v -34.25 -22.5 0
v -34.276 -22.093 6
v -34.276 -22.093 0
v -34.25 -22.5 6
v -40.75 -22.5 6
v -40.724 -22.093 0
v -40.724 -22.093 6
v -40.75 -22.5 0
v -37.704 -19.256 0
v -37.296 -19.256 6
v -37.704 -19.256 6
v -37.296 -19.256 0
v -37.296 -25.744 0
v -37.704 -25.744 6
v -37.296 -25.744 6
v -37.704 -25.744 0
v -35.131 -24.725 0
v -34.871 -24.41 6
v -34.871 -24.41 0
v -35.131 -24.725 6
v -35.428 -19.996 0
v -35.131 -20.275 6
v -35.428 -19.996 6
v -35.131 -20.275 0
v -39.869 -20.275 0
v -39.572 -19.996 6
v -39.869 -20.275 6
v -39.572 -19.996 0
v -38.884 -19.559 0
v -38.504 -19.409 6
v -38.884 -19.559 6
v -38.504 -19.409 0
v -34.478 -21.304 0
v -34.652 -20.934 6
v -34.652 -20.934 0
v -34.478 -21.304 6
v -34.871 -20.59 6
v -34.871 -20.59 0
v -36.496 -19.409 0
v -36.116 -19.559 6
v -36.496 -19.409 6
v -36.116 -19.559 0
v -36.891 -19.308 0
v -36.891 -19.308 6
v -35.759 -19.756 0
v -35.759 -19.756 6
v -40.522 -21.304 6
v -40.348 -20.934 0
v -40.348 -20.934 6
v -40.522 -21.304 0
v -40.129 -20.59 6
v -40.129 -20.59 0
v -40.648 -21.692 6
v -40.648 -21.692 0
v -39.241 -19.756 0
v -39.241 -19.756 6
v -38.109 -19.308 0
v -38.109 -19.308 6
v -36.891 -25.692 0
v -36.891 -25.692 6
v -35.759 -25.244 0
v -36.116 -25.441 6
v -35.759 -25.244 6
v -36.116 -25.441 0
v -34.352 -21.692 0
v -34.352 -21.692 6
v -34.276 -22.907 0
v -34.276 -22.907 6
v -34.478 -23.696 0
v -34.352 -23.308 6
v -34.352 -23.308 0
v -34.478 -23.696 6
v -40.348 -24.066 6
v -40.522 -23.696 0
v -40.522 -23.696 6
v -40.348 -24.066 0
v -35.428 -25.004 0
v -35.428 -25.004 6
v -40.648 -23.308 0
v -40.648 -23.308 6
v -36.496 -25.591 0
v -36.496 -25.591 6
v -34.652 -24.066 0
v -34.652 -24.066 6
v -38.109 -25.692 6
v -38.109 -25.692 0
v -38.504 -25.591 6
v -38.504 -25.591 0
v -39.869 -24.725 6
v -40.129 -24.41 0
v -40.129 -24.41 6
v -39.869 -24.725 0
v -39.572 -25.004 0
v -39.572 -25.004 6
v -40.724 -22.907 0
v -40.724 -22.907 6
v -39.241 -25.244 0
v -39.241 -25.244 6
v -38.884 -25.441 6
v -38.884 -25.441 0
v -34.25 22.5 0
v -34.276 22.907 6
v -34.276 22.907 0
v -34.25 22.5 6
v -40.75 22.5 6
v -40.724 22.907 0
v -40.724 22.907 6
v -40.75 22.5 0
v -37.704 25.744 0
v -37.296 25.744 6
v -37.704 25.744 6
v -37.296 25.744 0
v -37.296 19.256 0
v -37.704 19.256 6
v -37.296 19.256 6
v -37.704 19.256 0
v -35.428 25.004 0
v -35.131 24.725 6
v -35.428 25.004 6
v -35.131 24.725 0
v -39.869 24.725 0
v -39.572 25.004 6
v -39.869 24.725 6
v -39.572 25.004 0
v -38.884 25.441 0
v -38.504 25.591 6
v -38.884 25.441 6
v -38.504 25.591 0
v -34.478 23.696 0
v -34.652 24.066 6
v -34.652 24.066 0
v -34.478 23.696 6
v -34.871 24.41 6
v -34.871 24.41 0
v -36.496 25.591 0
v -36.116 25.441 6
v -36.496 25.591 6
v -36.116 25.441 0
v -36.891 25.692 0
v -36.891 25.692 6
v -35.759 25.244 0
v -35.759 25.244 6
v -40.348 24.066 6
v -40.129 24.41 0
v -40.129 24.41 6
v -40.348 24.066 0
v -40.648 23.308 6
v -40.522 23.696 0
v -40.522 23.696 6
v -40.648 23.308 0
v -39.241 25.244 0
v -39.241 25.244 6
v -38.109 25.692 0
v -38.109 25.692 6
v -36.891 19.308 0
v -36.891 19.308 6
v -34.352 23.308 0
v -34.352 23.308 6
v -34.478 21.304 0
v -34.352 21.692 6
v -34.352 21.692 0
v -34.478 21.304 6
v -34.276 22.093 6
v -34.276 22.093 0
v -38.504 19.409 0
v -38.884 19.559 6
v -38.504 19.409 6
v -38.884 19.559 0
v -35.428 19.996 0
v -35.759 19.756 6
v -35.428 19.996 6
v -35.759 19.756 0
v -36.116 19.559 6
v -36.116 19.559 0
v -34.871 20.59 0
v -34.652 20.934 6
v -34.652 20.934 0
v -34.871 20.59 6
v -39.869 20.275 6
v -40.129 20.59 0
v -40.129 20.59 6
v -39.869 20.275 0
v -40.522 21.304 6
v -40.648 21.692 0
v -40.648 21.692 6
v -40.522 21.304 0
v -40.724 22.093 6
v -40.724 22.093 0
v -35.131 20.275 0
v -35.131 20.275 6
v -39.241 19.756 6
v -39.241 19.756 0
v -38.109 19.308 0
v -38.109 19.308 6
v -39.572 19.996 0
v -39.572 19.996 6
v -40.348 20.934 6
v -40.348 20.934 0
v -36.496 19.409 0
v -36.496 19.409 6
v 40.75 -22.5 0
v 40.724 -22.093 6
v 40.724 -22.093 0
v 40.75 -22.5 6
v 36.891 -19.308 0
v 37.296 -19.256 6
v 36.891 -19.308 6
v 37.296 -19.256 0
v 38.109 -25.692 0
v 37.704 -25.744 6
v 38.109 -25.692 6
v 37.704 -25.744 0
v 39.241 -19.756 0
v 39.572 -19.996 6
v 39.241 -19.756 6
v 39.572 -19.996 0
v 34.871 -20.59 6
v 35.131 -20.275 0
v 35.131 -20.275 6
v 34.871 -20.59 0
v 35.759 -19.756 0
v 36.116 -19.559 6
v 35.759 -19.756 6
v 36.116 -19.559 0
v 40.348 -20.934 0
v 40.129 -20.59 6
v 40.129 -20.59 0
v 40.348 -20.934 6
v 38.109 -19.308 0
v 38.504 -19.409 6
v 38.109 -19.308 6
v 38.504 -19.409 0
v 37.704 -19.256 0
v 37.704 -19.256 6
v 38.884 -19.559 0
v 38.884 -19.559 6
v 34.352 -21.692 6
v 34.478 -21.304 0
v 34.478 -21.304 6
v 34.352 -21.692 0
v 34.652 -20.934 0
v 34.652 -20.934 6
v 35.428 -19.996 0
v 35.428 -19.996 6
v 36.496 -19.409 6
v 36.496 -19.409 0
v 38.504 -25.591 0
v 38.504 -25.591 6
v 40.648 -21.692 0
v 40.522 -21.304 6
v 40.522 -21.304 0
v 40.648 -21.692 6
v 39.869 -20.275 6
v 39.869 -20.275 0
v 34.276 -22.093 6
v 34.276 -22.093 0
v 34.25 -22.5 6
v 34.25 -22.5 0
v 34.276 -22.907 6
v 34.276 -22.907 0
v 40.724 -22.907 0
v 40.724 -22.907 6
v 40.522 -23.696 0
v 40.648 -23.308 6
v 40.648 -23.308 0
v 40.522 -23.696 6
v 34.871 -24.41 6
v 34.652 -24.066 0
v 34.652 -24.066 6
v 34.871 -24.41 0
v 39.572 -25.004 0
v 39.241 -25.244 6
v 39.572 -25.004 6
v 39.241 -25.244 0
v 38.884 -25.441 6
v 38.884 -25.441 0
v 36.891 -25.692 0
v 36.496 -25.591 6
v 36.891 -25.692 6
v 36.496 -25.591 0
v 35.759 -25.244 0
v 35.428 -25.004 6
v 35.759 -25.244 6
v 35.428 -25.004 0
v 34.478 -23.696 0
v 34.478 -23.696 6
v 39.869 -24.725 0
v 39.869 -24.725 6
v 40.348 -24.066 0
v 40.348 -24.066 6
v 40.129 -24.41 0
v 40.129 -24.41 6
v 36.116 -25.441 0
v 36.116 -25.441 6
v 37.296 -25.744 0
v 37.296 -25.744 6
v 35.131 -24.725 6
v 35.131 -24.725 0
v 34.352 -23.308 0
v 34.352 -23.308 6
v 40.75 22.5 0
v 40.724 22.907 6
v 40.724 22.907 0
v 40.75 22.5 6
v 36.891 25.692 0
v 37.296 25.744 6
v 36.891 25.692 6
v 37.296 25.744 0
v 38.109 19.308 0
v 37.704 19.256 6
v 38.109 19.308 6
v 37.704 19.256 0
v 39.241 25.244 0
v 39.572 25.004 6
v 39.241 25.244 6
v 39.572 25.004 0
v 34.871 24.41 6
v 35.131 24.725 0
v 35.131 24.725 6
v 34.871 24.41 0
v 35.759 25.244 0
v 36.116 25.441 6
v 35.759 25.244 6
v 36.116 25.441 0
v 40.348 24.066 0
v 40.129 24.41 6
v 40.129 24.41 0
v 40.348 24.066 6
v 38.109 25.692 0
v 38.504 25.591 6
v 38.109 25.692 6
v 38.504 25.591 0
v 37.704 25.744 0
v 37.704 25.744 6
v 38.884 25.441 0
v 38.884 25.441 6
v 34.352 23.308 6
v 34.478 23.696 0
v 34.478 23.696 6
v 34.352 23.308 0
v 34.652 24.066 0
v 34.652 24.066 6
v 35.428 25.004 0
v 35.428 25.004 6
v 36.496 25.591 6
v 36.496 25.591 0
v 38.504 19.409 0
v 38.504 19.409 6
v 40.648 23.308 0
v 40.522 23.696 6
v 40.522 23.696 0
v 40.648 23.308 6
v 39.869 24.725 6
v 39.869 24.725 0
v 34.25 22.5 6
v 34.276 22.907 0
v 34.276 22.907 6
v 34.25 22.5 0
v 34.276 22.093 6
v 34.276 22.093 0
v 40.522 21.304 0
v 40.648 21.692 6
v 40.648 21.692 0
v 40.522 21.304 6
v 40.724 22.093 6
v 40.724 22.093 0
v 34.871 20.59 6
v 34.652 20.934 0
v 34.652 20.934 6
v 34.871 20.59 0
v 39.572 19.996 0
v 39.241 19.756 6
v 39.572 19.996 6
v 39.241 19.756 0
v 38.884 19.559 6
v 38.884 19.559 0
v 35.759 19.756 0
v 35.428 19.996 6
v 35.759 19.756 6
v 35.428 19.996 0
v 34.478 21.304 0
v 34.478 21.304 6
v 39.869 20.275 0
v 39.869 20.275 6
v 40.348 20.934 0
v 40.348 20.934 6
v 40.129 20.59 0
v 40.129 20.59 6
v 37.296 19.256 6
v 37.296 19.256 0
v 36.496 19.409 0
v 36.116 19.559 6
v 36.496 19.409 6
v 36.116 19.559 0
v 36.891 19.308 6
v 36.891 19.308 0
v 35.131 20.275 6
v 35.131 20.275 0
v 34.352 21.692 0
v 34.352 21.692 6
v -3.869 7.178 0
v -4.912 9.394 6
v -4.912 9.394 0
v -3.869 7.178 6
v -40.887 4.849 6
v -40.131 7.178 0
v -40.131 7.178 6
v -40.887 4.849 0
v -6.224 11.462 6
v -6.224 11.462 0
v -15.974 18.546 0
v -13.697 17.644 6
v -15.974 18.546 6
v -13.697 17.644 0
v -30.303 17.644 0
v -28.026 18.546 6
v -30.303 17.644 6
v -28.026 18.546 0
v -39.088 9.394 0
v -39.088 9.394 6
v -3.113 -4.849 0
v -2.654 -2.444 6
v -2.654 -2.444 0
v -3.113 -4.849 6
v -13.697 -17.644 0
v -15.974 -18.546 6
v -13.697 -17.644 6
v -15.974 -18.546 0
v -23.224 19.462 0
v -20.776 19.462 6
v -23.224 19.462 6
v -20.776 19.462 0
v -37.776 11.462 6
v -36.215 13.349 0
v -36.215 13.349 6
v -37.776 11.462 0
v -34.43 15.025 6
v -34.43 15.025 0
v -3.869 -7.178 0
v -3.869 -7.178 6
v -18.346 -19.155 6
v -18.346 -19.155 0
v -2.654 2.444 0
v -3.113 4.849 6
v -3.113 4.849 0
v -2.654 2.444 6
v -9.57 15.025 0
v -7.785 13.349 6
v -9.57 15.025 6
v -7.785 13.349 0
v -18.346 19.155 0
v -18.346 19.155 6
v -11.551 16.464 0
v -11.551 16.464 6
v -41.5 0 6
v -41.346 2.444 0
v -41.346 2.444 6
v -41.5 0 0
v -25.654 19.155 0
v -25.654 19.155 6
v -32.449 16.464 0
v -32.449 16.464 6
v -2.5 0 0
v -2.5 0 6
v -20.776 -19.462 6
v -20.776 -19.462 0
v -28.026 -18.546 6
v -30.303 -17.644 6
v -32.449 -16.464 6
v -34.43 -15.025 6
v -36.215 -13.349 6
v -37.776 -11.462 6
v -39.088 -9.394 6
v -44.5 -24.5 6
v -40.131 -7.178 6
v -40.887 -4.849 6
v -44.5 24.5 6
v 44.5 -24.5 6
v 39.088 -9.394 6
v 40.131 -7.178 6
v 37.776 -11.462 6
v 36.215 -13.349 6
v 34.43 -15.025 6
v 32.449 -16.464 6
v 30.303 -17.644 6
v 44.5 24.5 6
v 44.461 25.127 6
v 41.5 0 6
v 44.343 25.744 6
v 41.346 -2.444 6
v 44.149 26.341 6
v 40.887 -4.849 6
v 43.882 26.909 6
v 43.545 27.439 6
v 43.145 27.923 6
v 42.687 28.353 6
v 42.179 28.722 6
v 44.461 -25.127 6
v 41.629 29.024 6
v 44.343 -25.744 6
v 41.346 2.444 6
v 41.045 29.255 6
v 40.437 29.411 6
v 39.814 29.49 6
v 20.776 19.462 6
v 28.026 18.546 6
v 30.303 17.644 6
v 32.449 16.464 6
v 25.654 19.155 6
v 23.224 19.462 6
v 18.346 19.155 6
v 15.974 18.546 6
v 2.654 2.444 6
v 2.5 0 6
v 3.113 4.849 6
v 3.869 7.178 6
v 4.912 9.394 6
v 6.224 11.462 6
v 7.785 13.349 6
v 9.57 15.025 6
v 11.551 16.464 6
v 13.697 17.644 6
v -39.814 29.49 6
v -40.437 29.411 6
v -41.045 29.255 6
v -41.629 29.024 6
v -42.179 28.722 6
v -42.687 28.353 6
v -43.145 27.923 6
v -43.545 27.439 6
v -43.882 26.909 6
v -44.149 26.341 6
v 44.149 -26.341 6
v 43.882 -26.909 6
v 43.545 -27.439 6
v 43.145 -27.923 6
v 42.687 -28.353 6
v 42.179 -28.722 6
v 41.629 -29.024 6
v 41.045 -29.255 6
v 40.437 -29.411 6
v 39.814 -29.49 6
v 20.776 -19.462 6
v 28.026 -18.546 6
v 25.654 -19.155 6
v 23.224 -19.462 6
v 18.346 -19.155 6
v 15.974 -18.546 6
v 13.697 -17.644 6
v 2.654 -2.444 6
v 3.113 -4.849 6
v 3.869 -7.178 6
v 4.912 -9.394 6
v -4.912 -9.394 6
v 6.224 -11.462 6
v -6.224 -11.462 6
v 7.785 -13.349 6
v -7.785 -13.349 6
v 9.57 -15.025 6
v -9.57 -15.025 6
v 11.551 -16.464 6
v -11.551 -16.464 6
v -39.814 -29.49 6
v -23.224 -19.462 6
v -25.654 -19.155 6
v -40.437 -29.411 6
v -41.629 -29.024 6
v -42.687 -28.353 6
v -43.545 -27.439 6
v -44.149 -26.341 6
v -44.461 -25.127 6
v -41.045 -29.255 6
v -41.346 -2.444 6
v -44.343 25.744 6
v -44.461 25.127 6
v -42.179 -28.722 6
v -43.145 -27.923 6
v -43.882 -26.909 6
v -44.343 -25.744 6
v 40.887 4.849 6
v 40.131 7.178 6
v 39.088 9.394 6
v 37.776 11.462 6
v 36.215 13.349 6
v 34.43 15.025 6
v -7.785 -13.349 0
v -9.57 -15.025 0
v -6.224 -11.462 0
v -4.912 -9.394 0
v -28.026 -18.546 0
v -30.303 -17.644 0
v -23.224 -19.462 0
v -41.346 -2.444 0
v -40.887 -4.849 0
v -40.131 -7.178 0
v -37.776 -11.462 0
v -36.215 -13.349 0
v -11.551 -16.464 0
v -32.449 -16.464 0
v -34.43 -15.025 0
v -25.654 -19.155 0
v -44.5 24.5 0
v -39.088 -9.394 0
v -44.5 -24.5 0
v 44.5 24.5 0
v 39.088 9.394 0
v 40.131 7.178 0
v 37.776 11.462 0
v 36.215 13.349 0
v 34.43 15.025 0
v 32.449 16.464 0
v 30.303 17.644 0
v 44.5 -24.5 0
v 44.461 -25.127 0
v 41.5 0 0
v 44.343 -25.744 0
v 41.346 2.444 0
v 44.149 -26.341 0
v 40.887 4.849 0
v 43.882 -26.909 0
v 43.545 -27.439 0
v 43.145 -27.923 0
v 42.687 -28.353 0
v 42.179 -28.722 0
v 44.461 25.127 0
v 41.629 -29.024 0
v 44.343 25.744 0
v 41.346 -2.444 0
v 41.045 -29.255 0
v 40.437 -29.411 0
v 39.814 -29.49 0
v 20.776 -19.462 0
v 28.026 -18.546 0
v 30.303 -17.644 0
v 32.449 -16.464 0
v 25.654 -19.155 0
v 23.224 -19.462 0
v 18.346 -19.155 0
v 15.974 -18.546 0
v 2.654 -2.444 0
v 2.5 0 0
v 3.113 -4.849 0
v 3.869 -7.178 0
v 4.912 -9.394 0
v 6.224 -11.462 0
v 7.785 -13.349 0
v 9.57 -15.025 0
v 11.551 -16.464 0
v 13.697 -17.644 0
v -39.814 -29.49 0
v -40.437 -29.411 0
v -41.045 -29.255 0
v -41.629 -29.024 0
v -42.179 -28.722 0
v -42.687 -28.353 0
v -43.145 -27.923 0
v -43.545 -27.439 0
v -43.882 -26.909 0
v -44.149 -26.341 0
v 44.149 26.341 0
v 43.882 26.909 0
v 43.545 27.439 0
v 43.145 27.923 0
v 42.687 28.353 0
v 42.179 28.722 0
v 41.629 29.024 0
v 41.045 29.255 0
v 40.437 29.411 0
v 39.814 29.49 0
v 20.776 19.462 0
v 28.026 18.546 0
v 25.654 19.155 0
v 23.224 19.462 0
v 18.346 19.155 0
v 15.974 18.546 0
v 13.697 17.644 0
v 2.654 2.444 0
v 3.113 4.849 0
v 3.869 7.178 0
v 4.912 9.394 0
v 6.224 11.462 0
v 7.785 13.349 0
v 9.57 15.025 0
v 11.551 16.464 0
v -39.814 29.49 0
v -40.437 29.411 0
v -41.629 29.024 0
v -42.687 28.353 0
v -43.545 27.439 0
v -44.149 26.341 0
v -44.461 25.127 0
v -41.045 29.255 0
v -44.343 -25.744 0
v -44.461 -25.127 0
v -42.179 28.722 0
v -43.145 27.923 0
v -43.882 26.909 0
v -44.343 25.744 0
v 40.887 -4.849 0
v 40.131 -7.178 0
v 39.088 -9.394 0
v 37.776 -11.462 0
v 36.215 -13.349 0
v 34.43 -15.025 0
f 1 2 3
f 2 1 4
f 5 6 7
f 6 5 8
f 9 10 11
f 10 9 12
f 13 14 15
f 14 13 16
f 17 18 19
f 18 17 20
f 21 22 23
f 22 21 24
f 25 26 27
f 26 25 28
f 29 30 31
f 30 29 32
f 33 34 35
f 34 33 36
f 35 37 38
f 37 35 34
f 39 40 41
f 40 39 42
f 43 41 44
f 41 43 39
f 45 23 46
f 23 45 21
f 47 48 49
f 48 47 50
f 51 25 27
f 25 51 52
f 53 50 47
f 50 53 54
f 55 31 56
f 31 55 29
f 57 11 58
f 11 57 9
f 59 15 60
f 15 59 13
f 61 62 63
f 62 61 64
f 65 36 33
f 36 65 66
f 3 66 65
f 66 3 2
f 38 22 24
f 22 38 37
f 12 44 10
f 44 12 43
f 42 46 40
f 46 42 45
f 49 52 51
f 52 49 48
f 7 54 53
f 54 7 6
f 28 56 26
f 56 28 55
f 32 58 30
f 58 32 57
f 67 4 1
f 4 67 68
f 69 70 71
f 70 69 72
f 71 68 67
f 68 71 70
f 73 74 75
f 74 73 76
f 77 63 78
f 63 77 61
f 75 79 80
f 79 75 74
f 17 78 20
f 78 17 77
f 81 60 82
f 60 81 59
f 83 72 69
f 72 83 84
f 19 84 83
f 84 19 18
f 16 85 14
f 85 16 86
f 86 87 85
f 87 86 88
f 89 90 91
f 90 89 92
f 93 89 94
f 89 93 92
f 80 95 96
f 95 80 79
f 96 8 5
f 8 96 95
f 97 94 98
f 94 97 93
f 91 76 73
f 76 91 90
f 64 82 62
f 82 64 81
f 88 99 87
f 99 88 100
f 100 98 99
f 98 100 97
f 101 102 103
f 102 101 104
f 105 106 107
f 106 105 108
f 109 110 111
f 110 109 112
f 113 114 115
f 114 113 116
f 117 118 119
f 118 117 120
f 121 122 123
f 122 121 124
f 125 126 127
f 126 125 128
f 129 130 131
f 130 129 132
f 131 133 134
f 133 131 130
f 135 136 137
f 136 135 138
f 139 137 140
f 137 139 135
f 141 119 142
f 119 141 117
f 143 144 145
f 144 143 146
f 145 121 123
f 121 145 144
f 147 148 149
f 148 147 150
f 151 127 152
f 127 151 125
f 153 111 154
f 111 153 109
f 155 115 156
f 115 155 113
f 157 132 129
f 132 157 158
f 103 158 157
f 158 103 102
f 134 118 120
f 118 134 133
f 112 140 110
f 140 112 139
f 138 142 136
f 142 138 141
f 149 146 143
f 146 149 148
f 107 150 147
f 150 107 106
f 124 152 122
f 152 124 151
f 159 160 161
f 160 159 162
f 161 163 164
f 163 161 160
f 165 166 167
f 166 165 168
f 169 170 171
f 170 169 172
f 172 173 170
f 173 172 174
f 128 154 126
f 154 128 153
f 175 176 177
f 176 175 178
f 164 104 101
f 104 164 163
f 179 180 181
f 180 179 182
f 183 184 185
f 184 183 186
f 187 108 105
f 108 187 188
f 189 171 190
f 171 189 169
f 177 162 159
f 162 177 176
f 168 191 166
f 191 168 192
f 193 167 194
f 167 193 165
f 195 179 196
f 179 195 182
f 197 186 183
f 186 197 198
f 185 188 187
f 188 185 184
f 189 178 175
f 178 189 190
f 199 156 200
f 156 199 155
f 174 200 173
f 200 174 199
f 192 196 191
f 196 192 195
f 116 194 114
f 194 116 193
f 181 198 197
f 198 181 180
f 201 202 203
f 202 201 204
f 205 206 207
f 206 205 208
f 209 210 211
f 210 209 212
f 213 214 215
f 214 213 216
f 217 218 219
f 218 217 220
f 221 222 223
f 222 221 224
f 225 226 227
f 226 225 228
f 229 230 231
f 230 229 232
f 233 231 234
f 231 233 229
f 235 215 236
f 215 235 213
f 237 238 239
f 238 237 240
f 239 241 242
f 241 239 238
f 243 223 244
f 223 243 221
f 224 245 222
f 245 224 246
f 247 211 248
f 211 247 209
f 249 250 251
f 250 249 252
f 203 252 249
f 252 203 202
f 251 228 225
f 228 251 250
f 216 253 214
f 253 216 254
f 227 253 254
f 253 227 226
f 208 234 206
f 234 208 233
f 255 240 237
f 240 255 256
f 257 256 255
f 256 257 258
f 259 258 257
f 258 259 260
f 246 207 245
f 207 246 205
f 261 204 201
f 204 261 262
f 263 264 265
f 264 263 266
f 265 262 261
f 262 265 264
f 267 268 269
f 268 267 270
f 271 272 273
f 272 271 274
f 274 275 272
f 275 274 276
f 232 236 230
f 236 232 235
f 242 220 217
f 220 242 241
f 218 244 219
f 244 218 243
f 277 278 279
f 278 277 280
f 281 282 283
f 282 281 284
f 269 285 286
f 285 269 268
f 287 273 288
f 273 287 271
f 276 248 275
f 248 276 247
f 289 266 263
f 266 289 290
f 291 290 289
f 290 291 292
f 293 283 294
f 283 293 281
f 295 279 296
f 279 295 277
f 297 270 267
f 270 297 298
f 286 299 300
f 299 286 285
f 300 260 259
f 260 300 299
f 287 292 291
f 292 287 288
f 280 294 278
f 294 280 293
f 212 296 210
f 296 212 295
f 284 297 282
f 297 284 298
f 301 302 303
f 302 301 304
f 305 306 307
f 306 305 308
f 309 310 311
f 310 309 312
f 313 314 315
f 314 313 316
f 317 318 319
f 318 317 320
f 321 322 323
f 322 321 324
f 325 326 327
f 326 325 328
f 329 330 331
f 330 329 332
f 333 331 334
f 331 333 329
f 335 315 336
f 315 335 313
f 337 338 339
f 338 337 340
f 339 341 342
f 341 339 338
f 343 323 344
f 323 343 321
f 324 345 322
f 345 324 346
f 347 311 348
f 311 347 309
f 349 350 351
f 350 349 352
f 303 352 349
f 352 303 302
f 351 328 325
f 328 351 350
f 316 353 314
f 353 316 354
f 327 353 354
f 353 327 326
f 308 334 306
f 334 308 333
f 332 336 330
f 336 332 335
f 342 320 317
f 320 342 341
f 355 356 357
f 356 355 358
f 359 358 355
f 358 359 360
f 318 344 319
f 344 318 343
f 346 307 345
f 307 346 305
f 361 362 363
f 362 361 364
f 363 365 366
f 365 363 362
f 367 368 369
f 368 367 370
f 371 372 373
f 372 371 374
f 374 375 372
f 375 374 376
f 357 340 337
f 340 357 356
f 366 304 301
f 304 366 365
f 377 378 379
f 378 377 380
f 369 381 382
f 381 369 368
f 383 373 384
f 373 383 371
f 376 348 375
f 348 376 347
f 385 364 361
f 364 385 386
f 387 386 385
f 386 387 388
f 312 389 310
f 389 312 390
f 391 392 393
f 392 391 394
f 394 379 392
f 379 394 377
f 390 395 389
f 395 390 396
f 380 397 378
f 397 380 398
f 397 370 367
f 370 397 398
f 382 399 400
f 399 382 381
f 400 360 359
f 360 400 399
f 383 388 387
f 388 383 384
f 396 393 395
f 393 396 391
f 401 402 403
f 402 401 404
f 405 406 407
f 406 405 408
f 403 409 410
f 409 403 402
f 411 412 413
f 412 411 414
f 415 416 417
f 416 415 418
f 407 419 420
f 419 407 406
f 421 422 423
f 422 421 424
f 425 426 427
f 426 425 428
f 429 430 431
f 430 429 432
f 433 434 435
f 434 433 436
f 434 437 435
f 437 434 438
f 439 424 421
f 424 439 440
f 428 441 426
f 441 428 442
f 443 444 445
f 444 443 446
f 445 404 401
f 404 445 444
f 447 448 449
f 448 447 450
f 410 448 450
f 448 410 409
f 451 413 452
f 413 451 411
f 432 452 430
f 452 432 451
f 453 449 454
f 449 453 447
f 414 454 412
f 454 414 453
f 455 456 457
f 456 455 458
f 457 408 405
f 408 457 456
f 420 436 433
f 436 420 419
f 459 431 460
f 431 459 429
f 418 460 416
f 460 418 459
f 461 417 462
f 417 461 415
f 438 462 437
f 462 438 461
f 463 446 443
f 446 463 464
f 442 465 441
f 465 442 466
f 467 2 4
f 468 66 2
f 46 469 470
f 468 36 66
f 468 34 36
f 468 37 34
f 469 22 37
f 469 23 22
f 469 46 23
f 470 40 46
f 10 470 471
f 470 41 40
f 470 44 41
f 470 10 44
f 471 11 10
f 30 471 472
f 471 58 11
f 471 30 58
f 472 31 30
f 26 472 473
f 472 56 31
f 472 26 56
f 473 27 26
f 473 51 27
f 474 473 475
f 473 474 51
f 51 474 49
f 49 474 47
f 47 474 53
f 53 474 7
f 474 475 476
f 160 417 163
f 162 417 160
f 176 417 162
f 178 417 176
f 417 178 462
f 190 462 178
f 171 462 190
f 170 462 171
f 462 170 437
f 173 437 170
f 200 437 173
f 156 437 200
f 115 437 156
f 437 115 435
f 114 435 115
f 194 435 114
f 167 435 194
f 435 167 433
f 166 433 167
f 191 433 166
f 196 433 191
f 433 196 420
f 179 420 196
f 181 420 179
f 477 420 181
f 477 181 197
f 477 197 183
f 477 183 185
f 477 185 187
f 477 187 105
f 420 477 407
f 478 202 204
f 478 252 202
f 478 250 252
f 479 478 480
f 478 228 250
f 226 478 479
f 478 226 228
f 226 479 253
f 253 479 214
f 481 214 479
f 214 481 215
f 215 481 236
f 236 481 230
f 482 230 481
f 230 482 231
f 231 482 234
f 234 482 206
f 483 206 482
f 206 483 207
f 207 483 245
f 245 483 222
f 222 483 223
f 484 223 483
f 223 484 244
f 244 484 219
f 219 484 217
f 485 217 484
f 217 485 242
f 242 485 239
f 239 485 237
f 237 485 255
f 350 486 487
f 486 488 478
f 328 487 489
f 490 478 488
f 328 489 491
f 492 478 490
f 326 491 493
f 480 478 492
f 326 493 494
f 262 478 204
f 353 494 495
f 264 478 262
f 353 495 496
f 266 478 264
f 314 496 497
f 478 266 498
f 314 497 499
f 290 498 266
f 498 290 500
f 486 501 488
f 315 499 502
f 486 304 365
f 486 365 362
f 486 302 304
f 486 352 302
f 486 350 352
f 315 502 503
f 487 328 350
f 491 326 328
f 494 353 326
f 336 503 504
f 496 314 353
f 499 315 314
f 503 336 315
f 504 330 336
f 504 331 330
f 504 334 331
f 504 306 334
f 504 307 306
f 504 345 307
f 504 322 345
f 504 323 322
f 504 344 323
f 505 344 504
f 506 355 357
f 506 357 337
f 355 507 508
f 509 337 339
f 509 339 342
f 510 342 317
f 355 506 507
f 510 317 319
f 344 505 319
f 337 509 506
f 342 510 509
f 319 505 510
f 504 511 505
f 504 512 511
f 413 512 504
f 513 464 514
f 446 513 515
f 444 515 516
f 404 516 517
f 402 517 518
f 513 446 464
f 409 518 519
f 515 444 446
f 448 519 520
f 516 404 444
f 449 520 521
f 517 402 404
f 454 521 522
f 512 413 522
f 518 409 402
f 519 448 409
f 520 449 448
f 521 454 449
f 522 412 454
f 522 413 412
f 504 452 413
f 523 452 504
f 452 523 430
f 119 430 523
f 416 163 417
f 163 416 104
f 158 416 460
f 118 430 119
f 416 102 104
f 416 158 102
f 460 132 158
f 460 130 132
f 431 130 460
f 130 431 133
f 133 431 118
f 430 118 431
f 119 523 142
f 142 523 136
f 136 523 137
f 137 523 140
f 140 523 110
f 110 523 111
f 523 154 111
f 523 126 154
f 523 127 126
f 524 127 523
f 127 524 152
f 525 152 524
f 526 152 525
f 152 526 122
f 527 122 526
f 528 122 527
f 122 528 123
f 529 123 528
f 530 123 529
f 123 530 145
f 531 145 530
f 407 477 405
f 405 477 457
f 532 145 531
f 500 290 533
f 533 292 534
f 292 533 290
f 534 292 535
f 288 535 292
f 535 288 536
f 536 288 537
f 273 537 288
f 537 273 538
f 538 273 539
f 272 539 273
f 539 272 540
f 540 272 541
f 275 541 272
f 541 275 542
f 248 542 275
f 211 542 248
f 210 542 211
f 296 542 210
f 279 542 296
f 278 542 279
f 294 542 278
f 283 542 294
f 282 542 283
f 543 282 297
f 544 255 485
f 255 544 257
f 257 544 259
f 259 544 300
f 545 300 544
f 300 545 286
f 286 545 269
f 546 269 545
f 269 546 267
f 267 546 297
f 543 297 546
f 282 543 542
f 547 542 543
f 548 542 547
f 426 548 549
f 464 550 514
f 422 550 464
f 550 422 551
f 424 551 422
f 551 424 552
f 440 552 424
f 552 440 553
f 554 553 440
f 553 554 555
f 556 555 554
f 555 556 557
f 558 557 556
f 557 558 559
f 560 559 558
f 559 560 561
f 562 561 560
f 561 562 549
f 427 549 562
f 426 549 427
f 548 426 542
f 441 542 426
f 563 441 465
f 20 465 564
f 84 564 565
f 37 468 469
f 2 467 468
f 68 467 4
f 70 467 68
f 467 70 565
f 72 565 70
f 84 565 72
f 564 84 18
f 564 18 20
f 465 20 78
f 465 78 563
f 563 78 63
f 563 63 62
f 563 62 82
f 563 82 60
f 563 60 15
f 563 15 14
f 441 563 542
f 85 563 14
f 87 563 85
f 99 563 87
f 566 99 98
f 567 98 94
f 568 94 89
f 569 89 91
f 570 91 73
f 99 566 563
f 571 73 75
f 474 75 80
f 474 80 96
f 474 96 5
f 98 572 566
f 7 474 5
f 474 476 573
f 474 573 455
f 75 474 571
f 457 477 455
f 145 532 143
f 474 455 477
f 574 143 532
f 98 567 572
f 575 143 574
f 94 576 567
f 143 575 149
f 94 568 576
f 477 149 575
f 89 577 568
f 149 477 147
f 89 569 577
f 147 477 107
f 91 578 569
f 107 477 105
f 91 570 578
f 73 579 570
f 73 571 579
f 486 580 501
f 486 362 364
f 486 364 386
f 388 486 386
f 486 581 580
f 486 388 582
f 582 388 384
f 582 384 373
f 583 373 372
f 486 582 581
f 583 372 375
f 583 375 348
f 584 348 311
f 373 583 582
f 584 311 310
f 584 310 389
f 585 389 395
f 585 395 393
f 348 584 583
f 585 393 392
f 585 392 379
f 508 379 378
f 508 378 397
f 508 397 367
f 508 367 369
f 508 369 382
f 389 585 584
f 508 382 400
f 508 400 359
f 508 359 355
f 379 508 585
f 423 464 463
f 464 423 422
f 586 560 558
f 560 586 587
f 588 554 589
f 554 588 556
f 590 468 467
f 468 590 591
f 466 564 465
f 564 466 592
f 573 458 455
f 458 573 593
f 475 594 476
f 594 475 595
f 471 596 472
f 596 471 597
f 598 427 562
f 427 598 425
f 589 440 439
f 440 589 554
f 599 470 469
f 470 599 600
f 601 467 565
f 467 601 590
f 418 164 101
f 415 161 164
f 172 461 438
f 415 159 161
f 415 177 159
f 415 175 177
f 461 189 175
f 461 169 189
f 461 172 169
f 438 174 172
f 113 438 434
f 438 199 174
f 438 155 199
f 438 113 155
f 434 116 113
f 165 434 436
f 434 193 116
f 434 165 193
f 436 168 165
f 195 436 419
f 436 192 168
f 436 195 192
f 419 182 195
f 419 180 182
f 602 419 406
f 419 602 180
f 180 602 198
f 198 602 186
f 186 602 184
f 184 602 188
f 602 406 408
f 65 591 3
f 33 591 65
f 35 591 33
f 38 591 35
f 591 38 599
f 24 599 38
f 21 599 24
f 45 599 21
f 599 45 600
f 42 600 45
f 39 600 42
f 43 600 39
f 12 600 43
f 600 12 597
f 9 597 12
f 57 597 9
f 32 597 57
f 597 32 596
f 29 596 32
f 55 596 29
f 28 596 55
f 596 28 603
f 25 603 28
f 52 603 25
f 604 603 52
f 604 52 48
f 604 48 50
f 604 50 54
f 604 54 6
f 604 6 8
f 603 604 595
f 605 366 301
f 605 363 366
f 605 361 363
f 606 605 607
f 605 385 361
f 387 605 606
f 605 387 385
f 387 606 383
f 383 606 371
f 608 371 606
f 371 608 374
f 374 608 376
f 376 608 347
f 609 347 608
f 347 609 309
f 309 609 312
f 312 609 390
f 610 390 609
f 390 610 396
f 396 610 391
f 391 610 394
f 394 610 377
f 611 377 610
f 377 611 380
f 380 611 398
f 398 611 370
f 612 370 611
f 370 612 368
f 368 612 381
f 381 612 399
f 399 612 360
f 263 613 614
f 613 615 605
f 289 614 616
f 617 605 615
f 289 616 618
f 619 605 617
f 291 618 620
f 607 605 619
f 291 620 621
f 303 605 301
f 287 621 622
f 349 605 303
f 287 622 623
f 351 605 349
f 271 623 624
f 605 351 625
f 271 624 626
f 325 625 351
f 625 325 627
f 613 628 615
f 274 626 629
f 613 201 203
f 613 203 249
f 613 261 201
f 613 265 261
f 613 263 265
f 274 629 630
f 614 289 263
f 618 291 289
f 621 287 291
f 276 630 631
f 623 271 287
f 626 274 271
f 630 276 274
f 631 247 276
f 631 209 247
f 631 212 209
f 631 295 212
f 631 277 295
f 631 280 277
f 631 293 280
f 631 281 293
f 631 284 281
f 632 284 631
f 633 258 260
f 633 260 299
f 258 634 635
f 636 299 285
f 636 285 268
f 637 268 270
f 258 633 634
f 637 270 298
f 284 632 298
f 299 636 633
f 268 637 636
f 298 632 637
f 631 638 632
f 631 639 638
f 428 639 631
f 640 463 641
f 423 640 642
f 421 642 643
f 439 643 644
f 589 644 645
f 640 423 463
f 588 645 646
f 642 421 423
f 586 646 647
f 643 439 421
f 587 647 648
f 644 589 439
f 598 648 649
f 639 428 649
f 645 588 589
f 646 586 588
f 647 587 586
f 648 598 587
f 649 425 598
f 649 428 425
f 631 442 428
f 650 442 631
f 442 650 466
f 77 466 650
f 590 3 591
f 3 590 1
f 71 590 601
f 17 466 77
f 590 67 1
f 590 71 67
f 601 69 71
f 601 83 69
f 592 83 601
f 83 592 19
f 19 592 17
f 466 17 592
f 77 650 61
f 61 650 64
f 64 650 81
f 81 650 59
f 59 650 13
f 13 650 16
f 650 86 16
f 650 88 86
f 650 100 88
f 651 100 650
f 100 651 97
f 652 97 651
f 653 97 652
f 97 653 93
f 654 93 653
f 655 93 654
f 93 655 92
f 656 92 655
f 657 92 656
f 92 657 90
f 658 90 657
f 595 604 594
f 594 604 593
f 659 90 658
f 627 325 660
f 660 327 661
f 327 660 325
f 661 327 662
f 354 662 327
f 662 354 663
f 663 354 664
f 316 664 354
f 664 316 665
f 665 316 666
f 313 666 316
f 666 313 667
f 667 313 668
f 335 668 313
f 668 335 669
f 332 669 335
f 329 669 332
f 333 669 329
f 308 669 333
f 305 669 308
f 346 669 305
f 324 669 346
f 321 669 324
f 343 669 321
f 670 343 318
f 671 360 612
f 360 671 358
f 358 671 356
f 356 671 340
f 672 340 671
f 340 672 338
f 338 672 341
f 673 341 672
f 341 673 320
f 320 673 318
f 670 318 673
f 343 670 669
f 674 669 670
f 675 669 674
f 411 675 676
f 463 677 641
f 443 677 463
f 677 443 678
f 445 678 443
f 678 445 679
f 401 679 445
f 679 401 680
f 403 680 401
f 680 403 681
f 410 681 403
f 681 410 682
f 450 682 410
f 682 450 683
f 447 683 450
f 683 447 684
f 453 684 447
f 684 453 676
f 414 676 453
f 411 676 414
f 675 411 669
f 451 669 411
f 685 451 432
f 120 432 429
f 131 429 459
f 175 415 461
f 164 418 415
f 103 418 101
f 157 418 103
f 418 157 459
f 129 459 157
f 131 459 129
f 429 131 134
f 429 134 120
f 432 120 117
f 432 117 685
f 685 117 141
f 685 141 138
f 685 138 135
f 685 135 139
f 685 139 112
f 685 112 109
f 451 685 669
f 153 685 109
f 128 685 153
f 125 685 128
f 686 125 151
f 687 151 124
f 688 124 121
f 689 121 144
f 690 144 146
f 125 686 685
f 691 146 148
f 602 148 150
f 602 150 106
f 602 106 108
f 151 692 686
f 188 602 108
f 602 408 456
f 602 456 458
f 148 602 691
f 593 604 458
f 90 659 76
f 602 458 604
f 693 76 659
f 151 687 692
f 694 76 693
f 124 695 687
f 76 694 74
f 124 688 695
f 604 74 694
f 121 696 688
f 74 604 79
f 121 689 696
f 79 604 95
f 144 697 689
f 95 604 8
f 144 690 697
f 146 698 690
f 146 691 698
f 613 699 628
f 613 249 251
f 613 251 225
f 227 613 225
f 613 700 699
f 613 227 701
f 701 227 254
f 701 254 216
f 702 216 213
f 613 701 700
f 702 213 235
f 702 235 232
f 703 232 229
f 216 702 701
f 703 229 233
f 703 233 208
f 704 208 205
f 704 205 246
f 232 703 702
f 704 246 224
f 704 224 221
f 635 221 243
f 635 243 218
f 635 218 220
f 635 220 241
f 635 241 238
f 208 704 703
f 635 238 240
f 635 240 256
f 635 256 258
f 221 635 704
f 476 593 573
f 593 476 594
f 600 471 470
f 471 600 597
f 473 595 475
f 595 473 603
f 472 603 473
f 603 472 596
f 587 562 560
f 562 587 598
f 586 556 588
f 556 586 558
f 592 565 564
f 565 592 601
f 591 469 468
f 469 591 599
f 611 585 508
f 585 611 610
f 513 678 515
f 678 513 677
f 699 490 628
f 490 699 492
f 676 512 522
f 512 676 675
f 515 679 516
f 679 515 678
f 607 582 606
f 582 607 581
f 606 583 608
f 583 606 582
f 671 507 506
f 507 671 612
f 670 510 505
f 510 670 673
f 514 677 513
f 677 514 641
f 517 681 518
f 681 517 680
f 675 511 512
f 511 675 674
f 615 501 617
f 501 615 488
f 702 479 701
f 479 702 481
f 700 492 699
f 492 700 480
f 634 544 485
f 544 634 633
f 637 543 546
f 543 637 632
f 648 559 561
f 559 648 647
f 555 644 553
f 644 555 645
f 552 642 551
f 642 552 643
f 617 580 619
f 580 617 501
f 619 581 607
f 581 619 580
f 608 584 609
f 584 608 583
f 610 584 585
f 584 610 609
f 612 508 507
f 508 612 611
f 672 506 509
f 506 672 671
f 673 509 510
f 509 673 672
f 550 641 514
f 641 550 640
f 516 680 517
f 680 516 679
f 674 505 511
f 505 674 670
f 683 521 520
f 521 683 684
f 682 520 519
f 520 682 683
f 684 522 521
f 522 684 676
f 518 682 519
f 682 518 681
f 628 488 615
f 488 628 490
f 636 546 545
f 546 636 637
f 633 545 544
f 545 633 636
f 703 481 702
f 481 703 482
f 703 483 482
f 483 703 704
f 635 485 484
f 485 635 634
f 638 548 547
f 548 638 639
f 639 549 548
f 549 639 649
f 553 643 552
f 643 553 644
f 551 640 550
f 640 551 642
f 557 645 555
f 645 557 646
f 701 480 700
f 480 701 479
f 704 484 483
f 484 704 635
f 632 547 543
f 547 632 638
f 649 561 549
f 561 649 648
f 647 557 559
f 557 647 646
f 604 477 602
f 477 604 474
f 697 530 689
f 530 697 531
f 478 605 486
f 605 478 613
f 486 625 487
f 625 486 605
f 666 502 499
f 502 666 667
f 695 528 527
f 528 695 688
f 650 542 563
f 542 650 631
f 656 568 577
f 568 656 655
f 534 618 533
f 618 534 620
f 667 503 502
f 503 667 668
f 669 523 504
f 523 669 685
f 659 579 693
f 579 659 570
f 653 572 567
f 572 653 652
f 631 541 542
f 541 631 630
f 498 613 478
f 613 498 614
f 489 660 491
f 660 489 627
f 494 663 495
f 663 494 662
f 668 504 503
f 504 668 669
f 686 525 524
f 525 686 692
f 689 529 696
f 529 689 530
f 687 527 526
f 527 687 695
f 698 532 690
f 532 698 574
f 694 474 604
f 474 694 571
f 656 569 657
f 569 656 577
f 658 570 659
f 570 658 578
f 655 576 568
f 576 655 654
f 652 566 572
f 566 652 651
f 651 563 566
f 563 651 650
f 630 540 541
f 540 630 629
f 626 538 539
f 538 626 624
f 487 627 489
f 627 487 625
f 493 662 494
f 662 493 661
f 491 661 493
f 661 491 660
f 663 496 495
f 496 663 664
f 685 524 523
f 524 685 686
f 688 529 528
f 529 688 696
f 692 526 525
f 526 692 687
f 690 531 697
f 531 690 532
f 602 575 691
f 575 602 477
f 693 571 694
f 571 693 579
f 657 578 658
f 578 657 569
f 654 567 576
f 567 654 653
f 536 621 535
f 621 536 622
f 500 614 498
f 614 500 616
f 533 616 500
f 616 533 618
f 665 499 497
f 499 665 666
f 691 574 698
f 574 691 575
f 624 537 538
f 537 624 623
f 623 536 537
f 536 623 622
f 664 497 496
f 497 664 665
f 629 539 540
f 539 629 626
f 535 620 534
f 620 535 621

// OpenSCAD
$fn = 50;


difference() {
	union() {
		hull() {
			translate(v = [-39.5000000000, 24.5000000000, 0]) {
				cylinder(h = 6, r = 5);
			}
			translate(v = [39.5000000000, 24.5000000000, 0]) {
				cylinder(h = 6, r = 5);
			}
			translate(v = [-39.5000000000, -24.5000000000, 0]) {
				cylinder(h = 6, r = 5);
			}
			translate(v = [39.5000000000, -24.5000000000, 0]) {
				cylinder(h = 6, r = 5);
			}
		}
	}
	union() {
		#translate(v = [-37.5000000000, -22.5000000000, -100.0000000000]) {
			cylinder(h = 200, r = 3.2500000000);
		}
		#translate(v = [-37.5000000000, 22.5000000000, -100.0000000000]) {
			cylinder(h = 200, r = 3.2500000000);
		}
		#translate(v = [37.5000000000, -22.5000000000, -100.0000000000]) {
			cylinder(h = 200, r = 3.2500000000);
		}
		#translate(v = [37.5000000000, 22.5000000000, -100.0000000000]) {
			cylinder(h = 200, r = 3.2500000000);
		}
		#translate(v = [-22.0000000000, 0, 0]) {
			cylinder(h = 6, r = 19.5000000000);
		}
		#translate(v = [22.0000000000, 0, 0]) {
			cylinder(h = 6, r = 19.5000000000);
		}
	}
}
